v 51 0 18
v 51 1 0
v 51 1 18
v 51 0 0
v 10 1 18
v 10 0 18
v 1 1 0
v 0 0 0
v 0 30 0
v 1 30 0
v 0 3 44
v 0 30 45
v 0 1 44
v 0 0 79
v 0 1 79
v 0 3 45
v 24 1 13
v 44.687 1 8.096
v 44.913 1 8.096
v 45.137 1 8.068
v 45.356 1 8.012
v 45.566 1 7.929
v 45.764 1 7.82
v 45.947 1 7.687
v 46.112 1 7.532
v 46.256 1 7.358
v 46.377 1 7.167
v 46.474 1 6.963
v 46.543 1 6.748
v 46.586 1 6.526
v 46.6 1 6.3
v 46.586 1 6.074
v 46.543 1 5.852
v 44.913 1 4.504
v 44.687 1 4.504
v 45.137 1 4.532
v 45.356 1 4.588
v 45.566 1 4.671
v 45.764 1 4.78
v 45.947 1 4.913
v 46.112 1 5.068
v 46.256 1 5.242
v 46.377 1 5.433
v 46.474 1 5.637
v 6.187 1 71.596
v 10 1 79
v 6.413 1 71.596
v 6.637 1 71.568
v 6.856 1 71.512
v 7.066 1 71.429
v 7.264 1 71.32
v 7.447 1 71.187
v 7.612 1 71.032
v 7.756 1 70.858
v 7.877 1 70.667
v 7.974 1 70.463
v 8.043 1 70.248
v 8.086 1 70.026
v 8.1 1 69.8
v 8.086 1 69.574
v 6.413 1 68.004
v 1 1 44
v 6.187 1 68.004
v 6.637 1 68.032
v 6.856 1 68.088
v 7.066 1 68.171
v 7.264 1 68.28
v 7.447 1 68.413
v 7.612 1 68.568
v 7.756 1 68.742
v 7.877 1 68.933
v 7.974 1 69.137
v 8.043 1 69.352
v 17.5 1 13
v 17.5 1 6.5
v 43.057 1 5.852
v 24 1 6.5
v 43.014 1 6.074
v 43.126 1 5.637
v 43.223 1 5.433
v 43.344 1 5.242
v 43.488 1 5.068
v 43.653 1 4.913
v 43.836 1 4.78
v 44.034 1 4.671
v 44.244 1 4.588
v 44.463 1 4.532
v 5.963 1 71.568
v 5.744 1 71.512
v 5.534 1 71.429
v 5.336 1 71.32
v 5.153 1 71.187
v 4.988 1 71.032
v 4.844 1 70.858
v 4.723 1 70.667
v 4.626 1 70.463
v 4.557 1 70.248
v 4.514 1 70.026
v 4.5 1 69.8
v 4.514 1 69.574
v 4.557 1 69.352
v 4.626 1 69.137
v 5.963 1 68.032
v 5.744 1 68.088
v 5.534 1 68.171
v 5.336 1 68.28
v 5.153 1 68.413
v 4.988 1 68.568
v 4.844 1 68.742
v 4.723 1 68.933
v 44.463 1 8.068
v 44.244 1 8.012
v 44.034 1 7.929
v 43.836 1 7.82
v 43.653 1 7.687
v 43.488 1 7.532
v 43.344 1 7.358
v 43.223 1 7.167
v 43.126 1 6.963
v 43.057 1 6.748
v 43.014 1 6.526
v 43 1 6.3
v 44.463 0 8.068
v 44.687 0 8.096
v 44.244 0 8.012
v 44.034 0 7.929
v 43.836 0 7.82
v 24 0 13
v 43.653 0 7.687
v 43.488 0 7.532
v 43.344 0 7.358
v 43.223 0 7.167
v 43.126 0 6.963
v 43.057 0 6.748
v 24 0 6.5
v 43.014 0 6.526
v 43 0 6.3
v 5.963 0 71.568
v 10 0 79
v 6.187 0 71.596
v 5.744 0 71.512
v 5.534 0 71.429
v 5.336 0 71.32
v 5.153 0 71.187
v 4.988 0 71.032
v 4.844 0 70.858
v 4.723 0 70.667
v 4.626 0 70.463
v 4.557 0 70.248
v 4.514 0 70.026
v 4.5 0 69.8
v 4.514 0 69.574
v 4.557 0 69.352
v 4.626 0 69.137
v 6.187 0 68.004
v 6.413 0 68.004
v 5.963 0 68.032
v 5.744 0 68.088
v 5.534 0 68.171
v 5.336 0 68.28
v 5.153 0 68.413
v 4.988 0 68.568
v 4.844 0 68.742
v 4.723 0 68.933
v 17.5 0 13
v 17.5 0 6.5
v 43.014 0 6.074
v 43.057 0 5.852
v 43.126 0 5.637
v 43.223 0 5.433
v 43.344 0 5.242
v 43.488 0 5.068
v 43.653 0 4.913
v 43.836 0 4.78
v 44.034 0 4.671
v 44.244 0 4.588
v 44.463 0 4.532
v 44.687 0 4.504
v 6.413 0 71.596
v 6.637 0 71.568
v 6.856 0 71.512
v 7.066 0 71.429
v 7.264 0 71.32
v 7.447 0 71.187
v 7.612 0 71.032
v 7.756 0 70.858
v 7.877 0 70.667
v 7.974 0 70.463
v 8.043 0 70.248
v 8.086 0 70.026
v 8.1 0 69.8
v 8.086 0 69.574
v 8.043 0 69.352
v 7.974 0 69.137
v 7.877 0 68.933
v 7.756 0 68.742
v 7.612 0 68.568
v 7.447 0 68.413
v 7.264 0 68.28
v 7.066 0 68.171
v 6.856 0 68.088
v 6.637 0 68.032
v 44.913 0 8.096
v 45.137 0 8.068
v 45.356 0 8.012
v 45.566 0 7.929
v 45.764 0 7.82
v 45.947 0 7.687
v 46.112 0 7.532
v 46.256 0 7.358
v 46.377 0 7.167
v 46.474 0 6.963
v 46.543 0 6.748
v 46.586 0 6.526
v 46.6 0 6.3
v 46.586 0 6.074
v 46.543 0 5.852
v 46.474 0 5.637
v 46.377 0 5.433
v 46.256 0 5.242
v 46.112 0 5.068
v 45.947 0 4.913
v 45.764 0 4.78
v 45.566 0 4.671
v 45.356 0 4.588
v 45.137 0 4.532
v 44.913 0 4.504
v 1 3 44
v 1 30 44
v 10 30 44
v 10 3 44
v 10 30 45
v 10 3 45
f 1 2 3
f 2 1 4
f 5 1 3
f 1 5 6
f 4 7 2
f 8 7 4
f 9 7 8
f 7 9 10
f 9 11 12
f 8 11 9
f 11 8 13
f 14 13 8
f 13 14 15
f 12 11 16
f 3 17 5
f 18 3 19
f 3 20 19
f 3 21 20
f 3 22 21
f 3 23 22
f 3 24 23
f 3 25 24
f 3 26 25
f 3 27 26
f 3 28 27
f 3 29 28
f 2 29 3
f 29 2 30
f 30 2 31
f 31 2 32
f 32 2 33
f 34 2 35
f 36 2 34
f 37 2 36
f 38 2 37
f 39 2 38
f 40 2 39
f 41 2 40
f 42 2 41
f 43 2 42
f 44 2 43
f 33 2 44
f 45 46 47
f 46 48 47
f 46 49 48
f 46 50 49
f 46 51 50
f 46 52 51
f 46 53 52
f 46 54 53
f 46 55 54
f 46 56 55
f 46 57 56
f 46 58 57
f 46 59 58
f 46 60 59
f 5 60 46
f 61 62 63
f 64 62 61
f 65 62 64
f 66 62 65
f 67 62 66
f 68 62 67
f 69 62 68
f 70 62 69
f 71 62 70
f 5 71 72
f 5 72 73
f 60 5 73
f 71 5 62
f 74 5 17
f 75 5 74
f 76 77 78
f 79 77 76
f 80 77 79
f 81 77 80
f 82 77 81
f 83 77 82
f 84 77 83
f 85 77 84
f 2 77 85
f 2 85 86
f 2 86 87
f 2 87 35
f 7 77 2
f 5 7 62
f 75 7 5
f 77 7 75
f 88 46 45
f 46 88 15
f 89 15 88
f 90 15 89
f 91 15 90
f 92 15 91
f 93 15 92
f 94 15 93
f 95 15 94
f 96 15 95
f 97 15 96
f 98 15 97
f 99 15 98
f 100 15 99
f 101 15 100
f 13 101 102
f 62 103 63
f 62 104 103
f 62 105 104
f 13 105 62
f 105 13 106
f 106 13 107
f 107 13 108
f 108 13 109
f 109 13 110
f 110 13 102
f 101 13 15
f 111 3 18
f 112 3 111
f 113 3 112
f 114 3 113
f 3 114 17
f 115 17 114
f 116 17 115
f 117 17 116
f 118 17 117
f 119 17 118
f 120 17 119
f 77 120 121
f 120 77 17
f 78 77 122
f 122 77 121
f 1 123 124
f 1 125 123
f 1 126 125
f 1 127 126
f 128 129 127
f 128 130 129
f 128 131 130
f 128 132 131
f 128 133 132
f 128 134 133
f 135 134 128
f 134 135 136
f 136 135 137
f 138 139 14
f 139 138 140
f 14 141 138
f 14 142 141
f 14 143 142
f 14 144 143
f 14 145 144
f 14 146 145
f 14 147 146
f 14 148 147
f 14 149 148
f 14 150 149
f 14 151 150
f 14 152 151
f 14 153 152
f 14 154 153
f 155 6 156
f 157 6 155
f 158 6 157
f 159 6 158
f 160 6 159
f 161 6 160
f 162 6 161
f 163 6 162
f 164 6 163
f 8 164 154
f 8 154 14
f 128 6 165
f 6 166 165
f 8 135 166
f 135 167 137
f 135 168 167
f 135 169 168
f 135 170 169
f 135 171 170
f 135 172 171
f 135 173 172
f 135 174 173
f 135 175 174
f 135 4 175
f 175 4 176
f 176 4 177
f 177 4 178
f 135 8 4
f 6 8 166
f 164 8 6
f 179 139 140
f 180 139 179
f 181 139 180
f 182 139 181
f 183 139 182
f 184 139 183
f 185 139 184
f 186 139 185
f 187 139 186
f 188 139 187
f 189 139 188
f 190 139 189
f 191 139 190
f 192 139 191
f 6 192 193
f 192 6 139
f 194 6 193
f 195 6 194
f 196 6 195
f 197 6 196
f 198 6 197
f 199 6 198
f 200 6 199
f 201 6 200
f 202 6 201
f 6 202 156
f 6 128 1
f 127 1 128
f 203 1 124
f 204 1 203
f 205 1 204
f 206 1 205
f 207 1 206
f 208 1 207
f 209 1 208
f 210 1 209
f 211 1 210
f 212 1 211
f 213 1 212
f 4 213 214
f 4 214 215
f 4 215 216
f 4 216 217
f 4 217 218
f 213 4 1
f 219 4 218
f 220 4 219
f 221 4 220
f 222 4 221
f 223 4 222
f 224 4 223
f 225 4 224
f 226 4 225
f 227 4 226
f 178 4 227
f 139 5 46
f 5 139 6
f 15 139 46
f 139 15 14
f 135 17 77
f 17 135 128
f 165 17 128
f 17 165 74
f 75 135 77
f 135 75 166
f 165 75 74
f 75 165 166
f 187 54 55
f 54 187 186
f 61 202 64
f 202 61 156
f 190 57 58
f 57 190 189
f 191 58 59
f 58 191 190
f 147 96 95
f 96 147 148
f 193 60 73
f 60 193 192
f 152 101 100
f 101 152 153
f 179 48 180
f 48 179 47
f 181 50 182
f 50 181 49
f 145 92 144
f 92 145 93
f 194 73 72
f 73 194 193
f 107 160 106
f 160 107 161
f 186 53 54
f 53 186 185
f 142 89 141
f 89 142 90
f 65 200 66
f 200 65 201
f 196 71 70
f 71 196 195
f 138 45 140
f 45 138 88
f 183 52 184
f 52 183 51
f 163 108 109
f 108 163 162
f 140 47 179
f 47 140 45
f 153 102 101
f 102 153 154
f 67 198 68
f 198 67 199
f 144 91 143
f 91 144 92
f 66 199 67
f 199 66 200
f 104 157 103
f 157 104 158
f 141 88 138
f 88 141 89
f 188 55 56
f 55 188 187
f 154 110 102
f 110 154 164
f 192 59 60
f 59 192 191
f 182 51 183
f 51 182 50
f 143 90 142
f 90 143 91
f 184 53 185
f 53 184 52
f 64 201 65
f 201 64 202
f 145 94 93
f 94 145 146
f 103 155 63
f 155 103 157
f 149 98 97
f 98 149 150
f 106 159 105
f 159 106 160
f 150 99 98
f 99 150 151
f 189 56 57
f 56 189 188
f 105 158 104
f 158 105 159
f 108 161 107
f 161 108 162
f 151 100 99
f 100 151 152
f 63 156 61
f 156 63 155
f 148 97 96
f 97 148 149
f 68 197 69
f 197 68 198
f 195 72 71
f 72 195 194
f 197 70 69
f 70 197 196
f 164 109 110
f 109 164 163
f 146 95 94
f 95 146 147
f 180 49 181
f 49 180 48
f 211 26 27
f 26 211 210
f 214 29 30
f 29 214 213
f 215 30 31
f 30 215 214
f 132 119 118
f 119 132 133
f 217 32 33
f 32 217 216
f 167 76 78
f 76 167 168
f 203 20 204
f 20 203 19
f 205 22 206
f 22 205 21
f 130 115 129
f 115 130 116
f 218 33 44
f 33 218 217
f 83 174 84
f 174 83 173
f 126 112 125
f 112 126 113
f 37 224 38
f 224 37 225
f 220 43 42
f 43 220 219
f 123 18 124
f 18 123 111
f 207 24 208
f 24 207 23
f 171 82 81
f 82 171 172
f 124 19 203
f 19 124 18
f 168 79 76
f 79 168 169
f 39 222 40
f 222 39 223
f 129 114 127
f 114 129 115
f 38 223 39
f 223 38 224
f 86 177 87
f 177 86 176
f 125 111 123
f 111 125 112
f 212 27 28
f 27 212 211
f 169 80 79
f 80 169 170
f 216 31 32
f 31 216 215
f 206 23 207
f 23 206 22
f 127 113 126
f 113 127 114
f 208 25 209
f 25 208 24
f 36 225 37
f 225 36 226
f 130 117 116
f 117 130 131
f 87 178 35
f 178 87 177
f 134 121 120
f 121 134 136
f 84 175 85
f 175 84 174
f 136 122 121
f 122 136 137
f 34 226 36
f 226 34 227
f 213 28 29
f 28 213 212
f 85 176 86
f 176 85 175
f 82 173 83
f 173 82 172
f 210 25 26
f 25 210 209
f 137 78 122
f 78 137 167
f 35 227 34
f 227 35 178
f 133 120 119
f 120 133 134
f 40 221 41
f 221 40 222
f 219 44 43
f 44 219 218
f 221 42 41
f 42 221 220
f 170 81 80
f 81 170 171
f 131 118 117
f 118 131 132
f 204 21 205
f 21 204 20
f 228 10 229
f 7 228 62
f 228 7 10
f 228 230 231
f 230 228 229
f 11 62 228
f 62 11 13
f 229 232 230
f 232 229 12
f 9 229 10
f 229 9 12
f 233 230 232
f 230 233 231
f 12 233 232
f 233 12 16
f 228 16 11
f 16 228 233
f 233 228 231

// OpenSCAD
// A3000 Power Button Bracket

// Dimensions
base_long = 79; // Long edge of the L
base_short = 51; // Short edge of the L
wall_height = 30; // Height of the vertical wall
wall_width = 44; // Width of the vertical wall
hole_diameter = 3.6; // Diameter of circular holes (approximate)
square_hole_size = 6.5; // Size of square cutout
tab_width = 15; // Width of the bent tab
tab_height = 8; // Height of the bent tab (approximate)
tab_offset = 20; // Offset from one edge

vertical_wall_offset = 3; // Original metal piece has one piece floating
			  // but if you print this on an FDM printer, set
			  // it to zero.

module base_plate() {
    difference() {
        union() {
            cube([base_short, 1, 18]); // Base plate
            cube([10,1,base_long]);
        }
        // Square cutout
        translate([17.5, -0.1, 6.5]) 
            cube([square_hole_size, 1.2, square_hole_size]);


        // Circular holes
        
        translate([4.5+hole_diameter/2, 1.1, 68+hole_diameter/2]) 
          rotate([90, 0, 0]) 
            cylinder(h=2, d=hole_diameter, $fn=50);
        
        translate([43+hole_diameter/2, 1.1, 4.5+hole_diameter/2]) 
          rotate([90, 0, 0]) 
            cylinder(h=2, d=hole_diameter, $fn=50);
        
    }
}

module vertical_wall() {
            cube([1, wall_height, wall_width]); // Vertical wall
            translate([0, vertical_wall_offset, wall_width])
            cube([10, wall_height-vertical_wall_offset, 1]);
}


module bracket() {
    union() {
        base_plate();
        vertical_wall();
       // tab();
    }
}

color ("#cccccc")
bracket();
